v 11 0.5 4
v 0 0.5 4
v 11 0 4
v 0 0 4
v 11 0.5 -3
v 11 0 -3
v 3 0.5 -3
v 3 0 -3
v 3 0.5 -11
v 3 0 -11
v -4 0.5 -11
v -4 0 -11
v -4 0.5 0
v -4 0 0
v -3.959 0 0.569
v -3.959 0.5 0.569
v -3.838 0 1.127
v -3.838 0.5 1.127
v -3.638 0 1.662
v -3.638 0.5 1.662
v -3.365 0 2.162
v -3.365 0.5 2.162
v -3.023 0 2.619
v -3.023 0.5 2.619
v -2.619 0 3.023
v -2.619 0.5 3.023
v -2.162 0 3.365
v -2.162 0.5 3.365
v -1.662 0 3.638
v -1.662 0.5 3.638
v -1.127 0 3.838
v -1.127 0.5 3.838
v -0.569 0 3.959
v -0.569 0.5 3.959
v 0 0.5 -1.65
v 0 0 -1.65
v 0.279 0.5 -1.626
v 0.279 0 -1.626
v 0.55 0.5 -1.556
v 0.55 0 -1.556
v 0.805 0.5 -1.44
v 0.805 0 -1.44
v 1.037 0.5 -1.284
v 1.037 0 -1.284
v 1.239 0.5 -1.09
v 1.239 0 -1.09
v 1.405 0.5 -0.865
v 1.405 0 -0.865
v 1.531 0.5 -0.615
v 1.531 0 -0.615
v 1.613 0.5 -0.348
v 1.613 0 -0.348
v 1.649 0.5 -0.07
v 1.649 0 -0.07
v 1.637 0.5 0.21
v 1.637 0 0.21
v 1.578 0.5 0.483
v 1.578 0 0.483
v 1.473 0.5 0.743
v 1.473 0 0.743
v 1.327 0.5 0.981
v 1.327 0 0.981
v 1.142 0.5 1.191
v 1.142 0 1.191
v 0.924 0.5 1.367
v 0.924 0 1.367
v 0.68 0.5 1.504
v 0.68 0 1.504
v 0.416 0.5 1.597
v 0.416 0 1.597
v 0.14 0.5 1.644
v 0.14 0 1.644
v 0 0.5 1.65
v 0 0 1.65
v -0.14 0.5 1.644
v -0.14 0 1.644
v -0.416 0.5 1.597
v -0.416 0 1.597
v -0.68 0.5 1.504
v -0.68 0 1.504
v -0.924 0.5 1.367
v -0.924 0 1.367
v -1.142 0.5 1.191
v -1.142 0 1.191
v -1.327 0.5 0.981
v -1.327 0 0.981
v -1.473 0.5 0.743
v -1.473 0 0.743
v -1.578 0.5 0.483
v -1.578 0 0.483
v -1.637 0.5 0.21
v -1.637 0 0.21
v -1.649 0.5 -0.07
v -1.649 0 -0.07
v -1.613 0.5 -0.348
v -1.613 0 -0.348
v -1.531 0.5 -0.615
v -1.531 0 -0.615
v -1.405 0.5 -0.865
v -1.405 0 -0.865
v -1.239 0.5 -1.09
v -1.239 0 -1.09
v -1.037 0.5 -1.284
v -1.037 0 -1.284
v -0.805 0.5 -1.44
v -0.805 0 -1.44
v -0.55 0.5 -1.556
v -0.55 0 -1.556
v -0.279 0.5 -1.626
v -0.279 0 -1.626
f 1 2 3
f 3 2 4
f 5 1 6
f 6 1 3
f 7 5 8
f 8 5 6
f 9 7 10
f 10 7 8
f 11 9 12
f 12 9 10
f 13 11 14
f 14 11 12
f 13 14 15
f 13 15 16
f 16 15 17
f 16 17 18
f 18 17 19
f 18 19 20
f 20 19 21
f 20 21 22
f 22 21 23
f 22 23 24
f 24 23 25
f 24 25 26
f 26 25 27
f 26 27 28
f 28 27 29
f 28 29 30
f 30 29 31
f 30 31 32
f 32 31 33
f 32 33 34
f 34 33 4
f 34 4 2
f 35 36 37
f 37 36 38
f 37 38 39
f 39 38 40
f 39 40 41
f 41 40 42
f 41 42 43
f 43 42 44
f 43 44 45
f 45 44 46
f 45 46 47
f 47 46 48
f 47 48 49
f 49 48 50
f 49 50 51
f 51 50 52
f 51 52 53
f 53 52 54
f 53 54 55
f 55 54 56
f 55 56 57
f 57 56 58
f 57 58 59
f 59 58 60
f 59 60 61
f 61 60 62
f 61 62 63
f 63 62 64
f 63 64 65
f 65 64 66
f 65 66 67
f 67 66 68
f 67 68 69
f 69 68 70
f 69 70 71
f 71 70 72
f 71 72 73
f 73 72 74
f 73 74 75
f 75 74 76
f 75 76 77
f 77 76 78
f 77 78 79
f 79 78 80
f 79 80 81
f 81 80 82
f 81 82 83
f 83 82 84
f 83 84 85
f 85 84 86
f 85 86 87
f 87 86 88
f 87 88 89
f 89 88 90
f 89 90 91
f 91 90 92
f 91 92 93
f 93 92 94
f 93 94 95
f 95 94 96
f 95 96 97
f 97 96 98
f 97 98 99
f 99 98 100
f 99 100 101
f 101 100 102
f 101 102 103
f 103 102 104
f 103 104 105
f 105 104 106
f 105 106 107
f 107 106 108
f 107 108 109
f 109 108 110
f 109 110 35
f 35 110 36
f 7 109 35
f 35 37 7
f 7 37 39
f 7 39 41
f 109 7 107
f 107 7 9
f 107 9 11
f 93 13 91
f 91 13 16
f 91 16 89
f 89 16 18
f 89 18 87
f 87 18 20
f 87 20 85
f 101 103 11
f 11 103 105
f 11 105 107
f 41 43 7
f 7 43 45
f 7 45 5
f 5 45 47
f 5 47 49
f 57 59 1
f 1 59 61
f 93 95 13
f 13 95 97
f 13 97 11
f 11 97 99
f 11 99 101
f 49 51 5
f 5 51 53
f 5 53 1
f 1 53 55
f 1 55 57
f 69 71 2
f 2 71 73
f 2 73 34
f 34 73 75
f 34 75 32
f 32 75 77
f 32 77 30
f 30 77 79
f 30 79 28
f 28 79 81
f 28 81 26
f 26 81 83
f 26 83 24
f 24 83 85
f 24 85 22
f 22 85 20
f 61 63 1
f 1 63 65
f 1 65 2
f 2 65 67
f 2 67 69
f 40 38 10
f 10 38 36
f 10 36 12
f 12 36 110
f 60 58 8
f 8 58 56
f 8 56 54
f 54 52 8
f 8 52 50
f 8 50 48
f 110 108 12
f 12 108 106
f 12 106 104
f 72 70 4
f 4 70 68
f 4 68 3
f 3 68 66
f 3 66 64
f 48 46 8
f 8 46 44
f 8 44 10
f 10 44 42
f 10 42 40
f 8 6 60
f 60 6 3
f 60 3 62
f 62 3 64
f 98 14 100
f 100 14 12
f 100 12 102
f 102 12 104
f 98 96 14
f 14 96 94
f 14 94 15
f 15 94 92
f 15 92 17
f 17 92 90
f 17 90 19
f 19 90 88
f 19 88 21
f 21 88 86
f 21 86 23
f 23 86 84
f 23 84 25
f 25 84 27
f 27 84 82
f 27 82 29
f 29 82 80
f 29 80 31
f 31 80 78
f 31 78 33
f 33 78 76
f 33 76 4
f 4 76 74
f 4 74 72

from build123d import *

# Parameters (mm, degrees)
SKETCH1_R           = 1.65
BOSS_EXTRUDE1_DEPTH = 0.5


with BuildPart() as part:
    # Sketch1 → Boss-Extrude1 (new body)
    with BuildSketch(Plane(origin=(0, 0, 0), x_dir=(1, 0, 0), z_dir=(0, 1, 0))):
        with BuildLine():
            Line((11, -3.99967418), (11, 3))
            Line((11, 3), (3, 3))
            Line((3, 3), (3, 11))
            Line((3, 11), (-3.99967418, 11))
            Line((-3.99967418, 11), (-3.99967418, 0))
            ThreePointArc((-3.99967418, 0), (-2.828196736, -2.828196736), (0, -3.99967418))
            Line((0, -3.99967418), (11, -3.99967418))
        make_face()
        with Locations(Location((0, 0, 0), (0, 0, 270))):
            Circle(SKETCH1_R, mode=Mode.SUBTRACT)
    extrude(amount=BOSS_EXTRUDE1_DEPTH)


solid = part.part
